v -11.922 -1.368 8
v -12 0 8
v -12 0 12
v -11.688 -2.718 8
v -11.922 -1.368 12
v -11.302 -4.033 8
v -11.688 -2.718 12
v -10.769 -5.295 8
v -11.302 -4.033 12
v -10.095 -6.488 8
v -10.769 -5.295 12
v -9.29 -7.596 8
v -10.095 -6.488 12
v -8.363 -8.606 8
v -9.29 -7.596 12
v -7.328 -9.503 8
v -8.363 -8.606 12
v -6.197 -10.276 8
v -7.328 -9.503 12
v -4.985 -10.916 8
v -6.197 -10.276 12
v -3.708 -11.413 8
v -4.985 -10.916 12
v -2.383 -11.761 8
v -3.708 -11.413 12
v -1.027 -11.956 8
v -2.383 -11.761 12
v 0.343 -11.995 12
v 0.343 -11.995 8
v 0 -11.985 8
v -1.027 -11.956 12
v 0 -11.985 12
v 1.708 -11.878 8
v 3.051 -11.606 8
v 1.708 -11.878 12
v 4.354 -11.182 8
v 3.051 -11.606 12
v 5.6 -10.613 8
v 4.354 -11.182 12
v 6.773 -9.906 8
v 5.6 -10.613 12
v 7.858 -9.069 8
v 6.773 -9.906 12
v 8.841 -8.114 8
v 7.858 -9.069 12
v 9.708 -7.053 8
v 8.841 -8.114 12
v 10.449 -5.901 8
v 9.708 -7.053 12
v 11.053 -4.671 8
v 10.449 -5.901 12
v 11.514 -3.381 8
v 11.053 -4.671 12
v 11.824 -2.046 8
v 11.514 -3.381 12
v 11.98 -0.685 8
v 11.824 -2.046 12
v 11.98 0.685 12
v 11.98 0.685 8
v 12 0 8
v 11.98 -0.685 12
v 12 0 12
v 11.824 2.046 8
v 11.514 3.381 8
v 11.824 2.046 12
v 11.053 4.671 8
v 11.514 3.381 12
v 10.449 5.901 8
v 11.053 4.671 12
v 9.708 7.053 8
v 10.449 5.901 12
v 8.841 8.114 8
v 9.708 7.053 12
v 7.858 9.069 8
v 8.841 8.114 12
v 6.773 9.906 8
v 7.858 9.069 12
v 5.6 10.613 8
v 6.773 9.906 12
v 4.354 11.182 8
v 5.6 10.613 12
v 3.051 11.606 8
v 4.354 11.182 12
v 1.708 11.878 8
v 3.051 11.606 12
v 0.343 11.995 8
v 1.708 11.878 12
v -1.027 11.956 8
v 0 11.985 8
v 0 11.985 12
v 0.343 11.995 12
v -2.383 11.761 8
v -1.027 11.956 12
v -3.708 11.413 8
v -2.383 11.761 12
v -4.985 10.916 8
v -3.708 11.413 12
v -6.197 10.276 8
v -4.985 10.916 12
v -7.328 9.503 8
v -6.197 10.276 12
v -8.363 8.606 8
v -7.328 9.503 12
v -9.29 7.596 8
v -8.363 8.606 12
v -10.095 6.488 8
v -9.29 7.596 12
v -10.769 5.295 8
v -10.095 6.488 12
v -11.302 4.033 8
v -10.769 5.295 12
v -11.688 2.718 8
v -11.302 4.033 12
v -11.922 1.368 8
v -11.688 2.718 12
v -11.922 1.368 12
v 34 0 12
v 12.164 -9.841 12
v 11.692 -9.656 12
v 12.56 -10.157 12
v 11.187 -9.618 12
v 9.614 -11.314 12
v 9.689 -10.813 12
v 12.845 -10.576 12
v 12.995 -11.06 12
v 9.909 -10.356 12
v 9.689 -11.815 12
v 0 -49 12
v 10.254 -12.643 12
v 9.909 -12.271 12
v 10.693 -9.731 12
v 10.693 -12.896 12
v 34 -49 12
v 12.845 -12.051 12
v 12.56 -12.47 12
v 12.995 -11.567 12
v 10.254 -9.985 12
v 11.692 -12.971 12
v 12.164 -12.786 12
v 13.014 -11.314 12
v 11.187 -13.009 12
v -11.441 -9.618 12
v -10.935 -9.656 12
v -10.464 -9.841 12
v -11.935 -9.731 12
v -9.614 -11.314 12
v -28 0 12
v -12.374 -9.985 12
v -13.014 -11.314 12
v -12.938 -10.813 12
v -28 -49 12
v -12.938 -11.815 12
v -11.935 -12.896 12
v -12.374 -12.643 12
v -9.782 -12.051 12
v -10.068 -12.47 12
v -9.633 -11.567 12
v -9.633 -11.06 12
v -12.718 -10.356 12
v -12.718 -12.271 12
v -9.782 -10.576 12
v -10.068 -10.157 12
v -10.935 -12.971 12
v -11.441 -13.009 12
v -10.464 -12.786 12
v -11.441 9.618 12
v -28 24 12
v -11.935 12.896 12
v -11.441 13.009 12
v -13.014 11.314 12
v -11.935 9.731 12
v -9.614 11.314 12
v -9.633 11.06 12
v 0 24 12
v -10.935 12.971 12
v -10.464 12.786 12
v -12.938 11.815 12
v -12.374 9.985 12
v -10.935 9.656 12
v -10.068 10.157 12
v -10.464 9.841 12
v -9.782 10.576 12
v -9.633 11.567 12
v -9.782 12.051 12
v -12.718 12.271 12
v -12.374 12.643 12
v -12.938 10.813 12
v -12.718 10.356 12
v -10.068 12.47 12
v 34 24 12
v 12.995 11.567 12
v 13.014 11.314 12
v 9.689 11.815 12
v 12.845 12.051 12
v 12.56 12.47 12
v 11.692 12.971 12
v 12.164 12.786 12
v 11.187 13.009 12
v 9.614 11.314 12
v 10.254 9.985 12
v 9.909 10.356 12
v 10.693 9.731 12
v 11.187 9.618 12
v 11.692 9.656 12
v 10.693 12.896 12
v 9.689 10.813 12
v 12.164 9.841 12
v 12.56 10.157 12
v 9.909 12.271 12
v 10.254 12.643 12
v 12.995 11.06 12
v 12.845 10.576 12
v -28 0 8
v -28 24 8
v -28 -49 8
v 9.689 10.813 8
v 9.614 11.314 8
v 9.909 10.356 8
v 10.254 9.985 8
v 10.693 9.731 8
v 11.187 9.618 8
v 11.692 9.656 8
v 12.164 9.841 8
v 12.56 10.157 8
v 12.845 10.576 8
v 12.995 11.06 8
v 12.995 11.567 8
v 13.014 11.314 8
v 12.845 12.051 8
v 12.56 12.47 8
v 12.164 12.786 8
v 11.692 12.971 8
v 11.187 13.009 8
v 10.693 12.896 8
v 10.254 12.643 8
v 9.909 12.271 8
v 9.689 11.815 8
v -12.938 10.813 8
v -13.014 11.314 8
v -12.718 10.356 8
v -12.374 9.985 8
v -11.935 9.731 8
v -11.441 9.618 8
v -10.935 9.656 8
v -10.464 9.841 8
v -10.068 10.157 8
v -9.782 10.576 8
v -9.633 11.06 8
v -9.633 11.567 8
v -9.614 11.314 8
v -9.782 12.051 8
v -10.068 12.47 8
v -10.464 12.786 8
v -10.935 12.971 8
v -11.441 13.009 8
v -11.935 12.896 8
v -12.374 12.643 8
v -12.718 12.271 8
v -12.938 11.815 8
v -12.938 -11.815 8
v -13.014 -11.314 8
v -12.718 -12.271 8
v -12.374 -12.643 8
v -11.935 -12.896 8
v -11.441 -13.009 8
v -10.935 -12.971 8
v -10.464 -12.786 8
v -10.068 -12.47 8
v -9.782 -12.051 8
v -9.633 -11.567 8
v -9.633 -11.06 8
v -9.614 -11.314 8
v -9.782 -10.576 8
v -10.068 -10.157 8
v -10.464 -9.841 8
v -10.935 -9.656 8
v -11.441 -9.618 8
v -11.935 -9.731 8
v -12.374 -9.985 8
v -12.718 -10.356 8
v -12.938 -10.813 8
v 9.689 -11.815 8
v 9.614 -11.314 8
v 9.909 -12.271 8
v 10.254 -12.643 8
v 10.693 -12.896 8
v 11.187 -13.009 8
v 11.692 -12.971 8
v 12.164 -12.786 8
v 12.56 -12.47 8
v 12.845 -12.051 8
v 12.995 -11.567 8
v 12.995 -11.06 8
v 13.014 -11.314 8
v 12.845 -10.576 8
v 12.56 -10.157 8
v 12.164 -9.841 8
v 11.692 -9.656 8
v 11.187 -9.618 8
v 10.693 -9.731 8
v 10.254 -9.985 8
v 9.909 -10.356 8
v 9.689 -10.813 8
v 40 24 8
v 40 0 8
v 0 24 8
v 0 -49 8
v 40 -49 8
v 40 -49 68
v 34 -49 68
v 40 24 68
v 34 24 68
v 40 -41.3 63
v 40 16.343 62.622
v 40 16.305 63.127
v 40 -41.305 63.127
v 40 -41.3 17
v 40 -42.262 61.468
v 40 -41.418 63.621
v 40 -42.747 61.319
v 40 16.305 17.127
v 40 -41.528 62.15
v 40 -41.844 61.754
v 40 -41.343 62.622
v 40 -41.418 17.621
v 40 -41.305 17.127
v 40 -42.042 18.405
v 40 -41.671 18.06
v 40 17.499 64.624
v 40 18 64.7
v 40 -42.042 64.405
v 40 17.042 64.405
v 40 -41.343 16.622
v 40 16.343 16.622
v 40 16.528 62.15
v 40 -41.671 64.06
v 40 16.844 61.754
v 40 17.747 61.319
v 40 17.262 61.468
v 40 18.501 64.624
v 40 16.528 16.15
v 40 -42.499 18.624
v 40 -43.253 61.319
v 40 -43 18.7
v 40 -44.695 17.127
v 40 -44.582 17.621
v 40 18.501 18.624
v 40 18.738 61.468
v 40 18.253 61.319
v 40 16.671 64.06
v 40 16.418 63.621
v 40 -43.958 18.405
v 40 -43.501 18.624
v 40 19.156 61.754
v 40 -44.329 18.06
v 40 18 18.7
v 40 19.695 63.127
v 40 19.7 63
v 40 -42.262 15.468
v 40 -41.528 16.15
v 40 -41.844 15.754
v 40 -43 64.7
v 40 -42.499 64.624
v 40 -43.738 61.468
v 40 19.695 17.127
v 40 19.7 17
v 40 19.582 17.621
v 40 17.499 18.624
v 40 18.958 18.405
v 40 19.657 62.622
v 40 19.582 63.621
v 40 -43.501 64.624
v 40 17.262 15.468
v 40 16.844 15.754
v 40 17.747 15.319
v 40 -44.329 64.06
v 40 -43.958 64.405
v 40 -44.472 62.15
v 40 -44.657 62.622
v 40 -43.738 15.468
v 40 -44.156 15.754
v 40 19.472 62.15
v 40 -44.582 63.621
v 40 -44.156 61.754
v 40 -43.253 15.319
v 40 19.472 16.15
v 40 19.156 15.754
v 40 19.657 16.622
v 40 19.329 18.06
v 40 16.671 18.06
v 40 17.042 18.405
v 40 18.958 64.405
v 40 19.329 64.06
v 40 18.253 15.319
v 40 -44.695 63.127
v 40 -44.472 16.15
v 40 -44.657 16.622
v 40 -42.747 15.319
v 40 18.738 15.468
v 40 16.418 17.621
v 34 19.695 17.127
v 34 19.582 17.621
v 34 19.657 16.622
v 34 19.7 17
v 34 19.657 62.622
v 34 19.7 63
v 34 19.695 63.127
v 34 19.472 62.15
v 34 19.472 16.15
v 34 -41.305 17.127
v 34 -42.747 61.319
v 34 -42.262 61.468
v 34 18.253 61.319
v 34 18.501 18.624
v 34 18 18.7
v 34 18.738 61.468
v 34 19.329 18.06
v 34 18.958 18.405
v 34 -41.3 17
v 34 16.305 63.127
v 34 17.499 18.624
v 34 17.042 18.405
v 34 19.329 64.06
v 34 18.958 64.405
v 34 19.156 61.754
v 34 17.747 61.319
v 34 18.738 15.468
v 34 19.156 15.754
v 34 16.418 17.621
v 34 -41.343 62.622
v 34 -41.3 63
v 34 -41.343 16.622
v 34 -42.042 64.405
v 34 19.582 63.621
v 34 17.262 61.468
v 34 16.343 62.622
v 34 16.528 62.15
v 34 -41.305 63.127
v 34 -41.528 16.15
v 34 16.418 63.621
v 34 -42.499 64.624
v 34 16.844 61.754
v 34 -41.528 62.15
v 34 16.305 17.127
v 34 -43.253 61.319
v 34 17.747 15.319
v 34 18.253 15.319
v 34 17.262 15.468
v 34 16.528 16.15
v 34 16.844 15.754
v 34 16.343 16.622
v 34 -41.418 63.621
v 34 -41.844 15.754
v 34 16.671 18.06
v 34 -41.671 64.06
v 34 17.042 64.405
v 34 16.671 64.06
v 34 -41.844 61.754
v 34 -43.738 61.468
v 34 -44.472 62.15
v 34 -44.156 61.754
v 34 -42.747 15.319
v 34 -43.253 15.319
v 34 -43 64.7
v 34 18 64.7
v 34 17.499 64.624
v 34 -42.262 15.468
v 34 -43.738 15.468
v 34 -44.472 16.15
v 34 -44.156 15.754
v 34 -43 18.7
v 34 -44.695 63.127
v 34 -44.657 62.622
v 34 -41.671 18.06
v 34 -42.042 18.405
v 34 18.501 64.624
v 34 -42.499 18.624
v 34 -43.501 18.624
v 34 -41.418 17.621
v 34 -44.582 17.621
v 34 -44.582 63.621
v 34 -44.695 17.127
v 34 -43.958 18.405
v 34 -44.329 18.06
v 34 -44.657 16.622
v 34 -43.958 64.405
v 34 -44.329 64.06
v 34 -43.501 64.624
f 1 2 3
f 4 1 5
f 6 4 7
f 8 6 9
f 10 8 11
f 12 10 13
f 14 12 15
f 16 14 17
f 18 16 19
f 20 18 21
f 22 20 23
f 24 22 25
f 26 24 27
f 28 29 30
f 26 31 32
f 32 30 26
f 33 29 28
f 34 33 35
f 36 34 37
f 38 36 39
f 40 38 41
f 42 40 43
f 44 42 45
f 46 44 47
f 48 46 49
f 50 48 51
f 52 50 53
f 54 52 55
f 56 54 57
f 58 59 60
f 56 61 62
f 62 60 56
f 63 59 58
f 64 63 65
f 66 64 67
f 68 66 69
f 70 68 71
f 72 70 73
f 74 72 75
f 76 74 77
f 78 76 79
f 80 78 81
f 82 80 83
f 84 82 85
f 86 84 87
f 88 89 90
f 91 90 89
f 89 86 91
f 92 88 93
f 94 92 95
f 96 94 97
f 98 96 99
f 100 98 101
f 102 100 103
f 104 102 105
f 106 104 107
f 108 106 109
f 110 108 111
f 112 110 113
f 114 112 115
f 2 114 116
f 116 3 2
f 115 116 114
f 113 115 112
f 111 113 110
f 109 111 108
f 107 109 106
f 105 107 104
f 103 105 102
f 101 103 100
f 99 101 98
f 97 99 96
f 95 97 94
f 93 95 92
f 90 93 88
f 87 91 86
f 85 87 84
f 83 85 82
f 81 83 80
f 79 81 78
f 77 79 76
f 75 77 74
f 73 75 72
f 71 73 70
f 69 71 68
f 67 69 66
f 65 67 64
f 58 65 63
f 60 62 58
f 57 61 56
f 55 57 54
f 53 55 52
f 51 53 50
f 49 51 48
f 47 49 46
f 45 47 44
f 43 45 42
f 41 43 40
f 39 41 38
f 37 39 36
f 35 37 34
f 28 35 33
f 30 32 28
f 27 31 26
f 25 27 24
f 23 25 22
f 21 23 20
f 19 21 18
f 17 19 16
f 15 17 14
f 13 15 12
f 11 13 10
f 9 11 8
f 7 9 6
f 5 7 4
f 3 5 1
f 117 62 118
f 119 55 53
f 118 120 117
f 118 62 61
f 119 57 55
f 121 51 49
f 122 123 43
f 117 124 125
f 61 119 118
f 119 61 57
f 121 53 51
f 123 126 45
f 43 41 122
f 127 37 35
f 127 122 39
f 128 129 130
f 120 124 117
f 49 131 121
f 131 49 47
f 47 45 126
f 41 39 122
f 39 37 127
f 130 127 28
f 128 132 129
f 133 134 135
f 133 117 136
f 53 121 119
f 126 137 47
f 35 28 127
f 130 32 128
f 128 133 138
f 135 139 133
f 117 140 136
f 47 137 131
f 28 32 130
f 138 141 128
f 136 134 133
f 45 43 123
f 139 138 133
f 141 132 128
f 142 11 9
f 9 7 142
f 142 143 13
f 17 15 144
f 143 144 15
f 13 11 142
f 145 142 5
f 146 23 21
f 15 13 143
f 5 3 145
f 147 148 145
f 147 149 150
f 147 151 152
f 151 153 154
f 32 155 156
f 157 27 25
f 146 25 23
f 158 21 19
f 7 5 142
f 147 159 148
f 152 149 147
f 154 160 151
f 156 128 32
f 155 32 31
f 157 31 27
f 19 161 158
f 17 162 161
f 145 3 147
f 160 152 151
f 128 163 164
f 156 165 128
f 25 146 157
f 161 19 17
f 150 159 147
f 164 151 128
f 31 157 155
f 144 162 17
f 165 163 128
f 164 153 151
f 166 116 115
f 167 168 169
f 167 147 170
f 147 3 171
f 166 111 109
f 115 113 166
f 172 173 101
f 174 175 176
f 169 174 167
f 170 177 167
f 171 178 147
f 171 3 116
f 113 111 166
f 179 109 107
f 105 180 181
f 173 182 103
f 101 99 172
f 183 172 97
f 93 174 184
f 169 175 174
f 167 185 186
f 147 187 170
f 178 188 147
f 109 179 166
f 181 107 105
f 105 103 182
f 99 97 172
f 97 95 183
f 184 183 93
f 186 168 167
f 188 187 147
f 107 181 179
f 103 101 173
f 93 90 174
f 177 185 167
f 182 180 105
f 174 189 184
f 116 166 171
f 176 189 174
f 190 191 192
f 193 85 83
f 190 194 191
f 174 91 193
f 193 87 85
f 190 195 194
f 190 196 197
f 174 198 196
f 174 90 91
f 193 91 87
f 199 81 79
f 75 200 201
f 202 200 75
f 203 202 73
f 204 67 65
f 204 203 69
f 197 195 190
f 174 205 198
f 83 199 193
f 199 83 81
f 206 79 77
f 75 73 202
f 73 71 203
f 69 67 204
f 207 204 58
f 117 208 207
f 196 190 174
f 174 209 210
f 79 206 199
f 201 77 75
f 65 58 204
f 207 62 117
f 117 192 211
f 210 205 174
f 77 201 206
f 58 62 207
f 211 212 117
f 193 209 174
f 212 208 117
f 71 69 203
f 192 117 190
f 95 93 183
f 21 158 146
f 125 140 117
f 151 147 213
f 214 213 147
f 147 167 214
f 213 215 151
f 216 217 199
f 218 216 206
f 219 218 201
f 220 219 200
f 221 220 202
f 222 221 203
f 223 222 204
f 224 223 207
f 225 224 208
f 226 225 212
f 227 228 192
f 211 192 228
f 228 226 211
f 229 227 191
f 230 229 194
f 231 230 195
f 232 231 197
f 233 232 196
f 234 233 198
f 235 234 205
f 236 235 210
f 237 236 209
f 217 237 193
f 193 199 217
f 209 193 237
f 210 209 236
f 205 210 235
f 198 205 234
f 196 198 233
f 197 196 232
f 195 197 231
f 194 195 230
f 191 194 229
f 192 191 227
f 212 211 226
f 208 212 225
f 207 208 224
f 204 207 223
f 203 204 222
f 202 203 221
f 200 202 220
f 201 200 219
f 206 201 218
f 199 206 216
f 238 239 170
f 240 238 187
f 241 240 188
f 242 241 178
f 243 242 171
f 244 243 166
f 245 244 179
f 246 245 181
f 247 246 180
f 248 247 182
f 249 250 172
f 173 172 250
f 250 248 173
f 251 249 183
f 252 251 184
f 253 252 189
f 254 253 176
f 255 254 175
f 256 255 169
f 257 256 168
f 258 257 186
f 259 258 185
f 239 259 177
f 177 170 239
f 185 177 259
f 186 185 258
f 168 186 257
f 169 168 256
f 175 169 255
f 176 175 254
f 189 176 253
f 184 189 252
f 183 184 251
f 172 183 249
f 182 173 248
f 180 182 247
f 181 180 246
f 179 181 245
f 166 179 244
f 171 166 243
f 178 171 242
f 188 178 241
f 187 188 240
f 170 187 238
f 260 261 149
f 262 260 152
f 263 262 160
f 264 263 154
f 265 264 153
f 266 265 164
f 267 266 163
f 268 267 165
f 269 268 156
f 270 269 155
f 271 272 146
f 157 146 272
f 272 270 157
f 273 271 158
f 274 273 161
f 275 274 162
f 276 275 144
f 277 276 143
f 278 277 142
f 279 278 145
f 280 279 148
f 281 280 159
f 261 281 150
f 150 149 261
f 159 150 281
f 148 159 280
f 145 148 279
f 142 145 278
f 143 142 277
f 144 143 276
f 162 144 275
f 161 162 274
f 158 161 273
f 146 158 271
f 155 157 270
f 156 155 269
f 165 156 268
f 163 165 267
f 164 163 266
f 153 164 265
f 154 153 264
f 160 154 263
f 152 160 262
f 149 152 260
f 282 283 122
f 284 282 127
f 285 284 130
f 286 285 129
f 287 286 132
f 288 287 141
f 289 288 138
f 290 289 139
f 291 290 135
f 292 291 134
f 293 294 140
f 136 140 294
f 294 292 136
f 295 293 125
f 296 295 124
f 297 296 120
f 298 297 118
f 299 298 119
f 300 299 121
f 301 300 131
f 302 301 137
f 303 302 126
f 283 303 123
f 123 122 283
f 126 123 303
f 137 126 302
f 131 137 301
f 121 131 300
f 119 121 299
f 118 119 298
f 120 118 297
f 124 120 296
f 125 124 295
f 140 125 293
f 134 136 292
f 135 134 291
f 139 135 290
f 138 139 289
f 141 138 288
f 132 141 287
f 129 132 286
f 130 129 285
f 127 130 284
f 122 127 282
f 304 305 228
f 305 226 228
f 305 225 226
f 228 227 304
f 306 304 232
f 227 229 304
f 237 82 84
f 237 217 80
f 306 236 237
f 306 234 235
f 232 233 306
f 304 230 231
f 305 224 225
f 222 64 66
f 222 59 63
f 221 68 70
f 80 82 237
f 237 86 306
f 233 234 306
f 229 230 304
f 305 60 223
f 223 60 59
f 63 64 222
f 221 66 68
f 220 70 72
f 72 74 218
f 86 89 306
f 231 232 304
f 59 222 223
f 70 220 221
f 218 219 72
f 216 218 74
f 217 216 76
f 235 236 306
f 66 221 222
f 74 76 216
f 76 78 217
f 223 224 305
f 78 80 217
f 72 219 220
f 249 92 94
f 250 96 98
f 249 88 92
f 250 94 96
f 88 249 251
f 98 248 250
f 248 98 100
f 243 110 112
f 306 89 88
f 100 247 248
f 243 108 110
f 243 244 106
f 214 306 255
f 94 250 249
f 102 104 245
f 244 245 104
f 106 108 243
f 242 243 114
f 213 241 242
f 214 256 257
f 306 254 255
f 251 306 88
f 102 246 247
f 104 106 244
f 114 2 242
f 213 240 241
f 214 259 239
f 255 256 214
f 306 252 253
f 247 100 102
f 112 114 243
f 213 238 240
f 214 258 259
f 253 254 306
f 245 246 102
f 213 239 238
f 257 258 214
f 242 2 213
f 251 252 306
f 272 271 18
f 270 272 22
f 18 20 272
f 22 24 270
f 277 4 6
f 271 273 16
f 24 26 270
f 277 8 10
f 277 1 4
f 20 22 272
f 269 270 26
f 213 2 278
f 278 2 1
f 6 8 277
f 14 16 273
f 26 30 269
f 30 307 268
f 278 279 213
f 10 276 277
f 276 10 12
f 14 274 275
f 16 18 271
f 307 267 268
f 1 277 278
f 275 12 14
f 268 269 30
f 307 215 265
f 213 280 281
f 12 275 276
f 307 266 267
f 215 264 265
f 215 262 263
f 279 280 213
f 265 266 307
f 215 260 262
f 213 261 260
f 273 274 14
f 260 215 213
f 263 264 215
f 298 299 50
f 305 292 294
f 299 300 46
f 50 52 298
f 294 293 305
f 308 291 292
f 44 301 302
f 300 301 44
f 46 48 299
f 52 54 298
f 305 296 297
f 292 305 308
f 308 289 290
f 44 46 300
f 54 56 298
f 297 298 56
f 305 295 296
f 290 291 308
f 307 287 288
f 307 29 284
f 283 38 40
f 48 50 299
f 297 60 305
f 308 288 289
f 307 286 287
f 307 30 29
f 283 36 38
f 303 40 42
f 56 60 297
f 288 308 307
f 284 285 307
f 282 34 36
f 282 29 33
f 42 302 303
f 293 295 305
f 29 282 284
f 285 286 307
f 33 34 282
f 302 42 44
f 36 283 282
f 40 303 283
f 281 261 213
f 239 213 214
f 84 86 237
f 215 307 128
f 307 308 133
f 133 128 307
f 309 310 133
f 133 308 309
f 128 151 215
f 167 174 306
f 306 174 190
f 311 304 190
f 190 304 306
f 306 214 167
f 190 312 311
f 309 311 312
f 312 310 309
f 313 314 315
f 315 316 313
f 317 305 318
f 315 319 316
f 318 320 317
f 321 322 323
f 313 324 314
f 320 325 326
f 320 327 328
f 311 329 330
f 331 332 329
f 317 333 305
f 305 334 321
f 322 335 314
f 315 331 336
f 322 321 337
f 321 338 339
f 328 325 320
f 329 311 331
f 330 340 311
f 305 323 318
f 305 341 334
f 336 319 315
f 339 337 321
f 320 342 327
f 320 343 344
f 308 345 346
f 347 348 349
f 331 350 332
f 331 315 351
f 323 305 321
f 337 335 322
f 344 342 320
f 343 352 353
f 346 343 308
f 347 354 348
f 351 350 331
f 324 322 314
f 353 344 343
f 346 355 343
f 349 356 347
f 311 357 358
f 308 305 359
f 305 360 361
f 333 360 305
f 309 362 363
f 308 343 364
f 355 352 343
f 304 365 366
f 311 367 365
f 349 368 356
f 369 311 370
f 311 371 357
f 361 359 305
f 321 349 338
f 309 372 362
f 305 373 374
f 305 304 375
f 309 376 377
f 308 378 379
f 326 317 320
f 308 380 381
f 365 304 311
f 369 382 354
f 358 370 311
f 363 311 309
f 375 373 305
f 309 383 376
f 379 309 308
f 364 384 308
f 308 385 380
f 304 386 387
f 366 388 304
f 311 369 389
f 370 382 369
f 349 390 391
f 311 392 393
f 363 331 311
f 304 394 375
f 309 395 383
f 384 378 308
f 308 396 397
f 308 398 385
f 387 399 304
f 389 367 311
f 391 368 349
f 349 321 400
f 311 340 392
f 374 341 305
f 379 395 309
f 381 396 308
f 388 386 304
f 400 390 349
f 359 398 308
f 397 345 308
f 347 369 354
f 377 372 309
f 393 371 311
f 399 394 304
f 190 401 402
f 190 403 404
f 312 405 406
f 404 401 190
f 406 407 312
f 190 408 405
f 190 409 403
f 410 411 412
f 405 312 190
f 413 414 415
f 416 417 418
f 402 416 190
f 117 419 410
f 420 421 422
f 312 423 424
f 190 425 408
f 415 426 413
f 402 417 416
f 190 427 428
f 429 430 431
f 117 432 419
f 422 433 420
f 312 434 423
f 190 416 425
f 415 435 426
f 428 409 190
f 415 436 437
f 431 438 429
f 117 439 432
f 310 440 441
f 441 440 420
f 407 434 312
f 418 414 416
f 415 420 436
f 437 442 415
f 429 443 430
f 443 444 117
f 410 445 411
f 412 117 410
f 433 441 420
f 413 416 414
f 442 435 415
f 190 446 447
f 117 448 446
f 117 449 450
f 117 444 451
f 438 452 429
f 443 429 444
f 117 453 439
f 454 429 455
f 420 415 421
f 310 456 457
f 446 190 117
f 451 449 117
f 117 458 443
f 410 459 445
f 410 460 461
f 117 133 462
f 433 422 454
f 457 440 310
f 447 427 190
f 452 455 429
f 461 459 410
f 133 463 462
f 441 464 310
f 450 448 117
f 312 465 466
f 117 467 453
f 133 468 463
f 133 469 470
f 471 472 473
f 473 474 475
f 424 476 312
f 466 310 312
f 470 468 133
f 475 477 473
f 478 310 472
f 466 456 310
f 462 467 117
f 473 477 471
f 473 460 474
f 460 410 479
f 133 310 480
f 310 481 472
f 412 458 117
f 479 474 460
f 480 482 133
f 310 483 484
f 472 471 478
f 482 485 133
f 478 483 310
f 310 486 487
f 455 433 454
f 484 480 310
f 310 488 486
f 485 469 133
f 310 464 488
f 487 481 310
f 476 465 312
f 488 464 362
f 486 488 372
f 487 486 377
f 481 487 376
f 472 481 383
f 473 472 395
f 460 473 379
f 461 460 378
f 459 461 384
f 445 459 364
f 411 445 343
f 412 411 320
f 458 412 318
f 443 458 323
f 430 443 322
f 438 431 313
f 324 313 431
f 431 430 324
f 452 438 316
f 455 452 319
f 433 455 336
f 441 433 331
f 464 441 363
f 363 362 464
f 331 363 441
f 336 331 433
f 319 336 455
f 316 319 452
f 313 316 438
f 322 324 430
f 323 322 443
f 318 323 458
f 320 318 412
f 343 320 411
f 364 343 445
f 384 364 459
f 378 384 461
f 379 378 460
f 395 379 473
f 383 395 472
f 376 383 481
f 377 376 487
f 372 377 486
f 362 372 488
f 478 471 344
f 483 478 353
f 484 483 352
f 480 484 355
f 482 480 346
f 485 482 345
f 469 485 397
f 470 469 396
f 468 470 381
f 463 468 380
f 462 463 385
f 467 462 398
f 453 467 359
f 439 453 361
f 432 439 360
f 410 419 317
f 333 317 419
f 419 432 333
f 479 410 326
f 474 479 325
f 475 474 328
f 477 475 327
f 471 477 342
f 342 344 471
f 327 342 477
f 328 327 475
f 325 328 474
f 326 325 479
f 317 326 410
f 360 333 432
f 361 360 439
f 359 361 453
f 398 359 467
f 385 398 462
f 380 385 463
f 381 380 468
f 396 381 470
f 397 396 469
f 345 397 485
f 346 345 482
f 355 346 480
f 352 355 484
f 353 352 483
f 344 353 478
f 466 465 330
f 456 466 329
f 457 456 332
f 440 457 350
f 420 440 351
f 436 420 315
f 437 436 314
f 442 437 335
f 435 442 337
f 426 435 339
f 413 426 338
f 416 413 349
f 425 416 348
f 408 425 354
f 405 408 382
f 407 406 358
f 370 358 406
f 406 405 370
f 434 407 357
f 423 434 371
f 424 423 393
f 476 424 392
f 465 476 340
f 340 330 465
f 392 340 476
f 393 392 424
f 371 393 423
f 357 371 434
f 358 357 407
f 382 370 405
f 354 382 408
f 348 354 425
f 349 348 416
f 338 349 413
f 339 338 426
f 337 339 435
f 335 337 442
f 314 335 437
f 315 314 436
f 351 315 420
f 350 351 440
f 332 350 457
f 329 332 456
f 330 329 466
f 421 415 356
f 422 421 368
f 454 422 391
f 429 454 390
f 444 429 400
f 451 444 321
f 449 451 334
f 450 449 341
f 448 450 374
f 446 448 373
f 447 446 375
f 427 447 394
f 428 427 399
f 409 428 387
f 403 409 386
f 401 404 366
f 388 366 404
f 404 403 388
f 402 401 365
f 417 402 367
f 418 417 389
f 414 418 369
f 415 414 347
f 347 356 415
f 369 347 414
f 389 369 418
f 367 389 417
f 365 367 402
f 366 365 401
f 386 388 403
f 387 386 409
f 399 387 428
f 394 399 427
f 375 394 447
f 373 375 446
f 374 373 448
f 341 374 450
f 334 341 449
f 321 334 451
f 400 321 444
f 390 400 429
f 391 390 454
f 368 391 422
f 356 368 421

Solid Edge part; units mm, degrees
sketch "Sketch1" plane through (0, 0, 8) normal (0, 0, 1) x (1, 0, 0)
  line L0 (-28, -49) -> (40, -49)
  line L1 (40, -49) -> (40, 24)
  line L2 (40, 24) -> (-28, 24)
  line L3 (-28, 24) -> (-28, -49)
  circle A0 centre (0, 0) radius 12
  circle A1 centre (11.3137, 11.3137) radius 1.7
  circle A2 centre (-11.3137, 11.3137) radius 1.7
  circle A3 centre (-11.3137, -11.3137) radius 1.7
  circle A4 centre (11.3137, -11.3137) radius 1.7
extrude "ExtrudedProtrusion_1" add sketch "Sketch1" along normal blind 4
sketch "Sketch2" plane through (0, 0, 12) normal (0, 0, 1) x (1, 0, 0)
  line L0 (34, -49) -> (40, -49)
  line L1 (40, -49) -> (40, 24)
  line L2 (40, 24) -> (34, 24)
  line L3 (34, 24) -> (34, -49)
extrude "ExtrudedProtrusion_2" add sketch "Sketch2" along normal blind 56
sketch "Sketch3" plane through (34, 0, 0) normal (1, 0, 0) x (0, 1, 0)
  circle A0 centre (-43, 63) radius 1.7
  circle A1 centre (-43, 17) radius 1.7
  circle A2 centre (18, 63) radius 1.7
  circle A3 centre (18, 17) radius 1.7
extrude "ExtrudedCutout_1" cut sketch "Sketch3" along normal blind 6
